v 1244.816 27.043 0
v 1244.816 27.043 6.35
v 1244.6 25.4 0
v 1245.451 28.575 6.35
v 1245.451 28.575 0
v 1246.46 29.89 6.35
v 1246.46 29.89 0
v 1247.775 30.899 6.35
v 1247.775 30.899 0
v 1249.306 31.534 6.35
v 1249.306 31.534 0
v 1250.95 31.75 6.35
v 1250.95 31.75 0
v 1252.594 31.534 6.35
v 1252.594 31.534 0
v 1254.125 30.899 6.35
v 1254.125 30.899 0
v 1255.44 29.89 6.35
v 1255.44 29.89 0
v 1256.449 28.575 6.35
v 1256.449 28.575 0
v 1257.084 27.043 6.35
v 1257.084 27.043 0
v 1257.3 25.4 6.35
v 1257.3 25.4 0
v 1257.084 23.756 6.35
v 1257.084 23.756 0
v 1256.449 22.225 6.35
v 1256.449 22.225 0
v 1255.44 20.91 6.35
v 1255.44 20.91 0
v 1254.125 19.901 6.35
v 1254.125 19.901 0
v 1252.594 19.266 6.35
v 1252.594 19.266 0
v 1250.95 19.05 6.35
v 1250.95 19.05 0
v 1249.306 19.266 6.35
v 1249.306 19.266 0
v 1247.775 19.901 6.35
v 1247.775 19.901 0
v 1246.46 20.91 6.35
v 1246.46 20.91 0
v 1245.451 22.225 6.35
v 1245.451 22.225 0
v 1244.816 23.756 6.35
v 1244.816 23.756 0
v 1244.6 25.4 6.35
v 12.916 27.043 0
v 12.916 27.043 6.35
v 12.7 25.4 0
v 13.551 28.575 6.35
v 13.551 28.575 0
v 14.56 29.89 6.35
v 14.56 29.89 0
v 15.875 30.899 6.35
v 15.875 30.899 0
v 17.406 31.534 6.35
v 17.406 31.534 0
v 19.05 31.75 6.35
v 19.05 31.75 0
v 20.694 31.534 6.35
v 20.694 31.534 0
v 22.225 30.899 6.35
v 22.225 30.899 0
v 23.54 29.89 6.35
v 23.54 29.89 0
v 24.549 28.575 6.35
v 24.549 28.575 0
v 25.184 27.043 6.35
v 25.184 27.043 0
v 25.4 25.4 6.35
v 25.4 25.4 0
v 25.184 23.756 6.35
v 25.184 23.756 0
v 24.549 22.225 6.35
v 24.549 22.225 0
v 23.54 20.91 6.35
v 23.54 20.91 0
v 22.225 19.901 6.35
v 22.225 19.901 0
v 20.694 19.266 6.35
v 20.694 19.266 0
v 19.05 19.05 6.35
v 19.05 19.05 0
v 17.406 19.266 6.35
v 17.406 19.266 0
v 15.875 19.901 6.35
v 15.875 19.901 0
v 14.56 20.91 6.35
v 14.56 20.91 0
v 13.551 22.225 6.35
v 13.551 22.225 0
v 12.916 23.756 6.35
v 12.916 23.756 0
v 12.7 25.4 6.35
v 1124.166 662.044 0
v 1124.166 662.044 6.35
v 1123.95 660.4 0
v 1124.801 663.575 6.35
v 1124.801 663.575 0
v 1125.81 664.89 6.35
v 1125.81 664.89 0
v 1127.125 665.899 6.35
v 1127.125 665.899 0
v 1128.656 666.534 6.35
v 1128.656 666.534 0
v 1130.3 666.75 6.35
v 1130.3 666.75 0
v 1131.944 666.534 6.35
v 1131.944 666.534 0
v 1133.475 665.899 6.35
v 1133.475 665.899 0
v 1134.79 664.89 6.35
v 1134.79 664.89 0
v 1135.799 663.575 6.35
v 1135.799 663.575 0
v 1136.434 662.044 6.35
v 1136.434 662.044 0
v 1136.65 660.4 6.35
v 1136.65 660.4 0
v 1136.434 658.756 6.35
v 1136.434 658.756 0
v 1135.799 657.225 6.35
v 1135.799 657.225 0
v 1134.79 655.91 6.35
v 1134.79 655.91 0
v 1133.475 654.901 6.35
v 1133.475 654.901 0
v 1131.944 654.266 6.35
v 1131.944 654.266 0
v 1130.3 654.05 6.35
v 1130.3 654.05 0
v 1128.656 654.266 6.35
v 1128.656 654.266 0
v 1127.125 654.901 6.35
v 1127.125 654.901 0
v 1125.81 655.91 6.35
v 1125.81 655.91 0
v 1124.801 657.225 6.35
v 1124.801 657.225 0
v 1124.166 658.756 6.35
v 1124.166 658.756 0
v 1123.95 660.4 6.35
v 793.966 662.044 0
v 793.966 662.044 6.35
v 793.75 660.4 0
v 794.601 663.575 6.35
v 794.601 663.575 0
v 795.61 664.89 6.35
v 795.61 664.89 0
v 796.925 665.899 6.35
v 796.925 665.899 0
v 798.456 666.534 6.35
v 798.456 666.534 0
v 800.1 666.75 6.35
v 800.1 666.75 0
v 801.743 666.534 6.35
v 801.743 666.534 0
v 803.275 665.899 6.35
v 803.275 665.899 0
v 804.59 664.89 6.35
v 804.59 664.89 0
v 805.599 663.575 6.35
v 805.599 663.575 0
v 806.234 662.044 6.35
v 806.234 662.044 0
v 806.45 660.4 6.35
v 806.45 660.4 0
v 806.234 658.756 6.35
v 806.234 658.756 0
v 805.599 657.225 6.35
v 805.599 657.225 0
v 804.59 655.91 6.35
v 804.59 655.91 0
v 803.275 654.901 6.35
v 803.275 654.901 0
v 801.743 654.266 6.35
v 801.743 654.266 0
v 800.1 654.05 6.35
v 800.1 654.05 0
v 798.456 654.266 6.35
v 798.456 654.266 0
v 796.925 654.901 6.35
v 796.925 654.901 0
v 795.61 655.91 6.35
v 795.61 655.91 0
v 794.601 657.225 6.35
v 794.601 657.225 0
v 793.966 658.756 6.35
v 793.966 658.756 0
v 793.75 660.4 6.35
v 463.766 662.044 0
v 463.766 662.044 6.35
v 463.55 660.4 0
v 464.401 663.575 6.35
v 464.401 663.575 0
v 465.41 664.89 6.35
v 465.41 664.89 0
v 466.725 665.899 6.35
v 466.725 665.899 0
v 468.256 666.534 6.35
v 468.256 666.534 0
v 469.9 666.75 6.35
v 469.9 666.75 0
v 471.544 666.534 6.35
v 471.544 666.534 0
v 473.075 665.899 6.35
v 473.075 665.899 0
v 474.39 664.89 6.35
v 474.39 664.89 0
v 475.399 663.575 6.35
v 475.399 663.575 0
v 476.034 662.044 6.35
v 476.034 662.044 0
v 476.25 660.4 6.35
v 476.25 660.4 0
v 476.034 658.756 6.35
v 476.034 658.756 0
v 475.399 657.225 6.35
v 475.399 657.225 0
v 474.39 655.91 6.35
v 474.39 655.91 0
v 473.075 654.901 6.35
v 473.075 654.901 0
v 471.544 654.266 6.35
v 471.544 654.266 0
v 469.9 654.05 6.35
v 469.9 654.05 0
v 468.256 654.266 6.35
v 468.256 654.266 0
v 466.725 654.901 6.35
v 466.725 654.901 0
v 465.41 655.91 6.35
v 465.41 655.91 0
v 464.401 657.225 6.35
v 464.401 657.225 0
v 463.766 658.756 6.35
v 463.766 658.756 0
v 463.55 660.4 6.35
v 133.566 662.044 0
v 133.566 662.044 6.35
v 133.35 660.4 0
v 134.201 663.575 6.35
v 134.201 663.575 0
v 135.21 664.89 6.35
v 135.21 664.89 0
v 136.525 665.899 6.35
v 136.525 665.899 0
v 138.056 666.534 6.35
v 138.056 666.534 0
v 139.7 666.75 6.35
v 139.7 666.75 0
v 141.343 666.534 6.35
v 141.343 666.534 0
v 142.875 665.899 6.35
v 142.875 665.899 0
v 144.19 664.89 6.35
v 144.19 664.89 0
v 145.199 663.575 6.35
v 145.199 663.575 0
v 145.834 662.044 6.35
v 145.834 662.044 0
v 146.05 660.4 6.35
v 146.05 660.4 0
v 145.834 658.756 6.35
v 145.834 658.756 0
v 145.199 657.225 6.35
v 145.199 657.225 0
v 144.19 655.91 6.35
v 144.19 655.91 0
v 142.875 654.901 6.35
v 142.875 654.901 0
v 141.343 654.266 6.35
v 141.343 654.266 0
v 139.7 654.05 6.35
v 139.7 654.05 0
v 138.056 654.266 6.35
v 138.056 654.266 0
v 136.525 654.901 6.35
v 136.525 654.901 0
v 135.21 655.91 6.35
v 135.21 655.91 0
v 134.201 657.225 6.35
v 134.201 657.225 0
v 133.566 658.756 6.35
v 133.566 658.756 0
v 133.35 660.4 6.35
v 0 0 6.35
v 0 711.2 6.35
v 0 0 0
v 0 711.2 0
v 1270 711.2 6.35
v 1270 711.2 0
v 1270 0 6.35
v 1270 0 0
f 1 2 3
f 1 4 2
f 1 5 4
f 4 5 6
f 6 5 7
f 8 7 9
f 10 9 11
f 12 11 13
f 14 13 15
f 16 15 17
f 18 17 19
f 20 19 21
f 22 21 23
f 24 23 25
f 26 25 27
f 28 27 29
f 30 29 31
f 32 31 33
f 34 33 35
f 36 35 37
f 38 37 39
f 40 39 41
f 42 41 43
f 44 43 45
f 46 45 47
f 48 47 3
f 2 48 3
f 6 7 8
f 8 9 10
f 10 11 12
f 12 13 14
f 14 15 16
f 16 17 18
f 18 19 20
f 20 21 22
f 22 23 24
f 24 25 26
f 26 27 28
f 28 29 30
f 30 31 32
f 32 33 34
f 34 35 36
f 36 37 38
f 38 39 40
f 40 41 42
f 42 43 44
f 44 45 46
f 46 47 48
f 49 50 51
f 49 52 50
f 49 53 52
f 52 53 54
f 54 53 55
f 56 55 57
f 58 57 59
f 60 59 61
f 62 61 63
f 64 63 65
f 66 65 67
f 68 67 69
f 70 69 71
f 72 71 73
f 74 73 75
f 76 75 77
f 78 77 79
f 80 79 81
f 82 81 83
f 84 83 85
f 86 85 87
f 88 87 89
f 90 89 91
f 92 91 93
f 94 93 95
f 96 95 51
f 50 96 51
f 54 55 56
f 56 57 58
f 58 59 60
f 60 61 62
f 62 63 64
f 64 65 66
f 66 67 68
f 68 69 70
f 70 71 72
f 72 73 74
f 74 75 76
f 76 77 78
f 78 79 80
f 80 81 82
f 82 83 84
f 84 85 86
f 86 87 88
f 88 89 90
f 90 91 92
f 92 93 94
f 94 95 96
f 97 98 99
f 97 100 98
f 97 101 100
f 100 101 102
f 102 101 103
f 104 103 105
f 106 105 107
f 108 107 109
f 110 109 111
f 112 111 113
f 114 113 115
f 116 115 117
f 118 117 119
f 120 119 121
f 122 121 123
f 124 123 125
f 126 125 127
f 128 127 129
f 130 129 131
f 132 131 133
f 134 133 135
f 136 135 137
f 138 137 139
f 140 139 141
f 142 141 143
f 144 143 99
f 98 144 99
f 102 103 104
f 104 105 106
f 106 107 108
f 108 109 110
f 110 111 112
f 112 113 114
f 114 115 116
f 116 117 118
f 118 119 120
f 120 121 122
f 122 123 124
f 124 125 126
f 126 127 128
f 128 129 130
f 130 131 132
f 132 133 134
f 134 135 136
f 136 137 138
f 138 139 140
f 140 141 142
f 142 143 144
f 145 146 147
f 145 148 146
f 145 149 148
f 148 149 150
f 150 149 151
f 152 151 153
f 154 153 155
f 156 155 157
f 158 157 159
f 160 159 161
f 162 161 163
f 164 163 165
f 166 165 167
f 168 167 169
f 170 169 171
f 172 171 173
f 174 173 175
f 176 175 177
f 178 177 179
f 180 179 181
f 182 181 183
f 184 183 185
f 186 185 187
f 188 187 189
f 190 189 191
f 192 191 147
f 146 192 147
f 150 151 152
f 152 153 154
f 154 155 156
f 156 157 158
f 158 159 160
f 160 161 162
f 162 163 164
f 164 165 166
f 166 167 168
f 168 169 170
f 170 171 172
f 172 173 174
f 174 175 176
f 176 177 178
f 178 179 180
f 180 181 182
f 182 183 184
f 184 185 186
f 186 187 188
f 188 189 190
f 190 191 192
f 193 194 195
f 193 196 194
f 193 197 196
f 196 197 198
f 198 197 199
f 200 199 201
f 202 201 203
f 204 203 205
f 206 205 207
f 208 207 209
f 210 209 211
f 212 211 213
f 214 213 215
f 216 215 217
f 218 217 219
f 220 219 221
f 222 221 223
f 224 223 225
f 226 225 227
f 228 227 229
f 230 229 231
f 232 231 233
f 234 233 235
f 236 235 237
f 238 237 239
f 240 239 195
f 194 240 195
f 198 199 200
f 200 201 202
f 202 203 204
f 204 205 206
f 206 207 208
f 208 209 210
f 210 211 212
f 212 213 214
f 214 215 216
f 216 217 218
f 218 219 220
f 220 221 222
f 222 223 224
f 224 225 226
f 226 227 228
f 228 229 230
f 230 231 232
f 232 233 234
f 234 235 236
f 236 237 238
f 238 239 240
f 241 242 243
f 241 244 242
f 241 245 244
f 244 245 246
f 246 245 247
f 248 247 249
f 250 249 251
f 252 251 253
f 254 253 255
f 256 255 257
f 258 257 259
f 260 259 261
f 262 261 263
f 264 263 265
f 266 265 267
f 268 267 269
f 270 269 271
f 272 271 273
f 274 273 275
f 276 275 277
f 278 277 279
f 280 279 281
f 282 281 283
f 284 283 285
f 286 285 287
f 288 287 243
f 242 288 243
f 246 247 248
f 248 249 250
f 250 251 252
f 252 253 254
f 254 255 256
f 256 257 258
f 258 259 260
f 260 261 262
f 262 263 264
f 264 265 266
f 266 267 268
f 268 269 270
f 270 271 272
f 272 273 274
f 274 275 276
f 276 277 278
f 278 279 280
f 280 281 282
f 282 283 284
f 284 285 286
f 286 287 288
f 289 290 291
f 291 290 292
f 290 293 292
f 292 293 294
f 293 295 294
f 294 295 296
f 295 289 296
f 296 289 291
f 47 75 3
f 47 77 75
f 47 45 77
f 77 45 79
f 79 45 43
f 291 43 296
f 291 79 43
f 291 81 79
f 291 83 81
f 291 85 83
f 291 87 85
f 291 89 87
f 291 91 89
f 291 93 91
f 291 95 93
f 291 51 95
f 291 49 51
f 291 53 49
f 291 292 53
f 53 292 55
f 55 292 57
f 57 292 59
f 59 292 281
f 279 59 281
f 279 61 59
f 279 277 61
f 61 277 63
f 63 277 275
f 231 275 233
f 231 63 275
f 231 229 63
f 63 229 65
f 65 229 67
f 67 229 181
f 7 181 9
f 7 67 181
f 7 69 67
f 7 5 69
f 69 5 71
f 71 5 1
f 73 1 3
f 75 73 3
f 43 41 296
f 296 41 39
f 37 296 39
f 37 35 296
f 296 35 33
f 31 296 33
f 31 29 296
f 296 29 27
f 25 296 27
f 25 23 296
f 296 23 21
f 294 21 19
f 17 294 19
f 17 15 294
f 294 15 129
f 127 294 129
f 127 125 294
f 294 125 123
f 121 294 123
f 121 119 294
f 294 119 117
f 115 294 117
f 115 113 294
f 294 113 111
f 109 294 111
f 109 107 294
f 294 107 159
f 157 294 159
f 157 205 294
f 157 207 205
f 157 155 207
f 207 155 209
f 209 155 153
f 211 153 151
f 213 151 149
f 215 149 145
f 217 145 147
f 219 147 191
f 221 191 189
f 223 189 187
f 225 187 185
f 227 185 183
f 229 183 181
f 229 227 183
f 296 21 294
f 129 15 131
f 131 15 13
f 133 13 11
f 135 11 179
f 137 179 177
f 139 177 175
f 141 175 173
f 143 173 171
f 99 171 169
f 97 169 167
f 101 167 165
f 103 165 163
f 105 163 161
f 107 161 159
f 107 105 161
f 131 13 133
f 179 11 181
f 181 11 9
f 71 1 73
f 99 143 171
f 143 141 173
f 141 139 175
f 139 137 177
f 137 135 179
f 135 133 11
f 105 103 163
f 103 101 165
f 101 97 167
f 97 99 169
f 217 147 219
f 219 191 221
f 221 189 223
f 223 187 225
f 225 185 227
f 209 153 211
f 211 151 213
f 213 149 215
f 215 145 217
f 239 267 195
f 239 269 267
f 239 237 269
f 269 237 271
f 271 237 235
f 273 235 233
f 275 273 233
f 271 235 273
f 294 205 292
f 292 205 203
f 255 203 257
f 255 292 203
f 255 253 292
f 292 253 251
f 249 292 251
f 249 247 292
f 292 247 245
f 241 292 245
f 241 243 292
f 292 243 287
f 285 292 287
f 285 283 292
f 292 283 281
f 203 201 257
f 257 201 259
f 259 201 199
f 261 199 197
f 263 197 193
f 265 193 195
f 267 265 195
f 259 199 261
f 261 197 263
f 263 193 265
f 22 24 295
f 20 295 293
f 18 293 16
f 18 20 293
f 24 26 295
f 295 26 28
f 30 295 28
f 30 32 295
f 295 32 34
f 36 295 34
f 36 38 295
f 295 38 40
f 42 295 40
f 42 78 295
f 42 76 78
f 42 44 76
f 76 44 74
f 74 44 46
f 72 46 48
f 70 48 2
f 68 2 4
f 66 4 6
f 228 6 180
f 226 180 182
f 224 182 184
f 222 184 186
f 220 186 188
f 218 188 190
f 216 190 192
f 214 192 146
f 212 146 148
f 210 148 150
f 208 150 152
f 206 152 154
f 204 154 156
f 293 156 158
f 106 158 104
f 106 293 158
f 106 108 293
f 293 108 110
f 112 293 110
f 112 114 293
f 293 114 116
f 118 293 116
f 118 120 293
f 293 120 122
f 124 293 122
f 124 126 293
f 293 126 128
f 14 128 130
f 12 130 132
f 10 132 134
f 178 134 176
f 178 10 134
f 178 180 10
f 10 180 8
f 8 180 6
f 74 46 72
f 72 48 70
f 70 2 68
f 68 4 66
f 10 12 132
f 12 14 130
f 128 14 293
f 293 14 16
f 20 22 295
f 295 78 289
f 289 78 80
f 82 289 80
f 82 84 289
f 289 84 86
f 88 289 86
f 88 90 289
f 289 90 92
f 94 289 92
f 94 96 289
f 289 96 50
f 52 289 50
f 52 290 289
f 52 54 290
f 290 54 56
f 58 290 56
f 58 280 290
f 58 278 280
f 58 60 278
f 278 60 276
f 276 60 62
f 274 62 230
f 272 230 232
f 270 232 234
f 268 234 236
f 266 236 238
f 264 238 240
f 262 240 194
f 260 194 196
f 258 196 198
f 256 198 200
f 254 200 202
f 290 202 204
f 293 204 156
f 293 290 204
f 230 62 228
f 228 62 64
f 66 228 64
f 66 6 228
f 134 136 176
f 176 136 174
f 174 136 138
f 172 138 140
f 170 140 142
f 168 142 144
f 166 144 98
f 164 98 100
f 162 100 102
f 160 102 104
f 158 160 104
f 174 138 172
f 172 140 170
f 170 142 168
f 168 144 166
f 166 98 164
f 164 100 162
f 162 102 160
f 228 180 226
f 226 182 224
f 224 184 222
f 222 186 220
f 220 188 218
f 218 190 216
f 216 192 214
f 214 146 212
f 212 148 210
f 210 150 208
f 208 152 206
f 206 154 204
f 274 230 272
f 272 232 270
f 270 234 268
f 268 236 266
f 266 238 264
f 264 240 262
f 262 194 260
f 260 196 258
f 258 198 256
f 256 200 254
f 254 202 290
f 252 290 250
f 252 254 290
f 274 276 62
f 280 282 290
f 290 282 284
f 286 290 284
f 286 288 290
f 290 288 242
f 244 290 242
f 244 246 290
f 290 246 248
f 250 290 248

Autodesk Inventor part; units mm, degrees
ref_plane "YZ Plane" through (0, 0, 0) normal (1, 0, 0) x (0, 1, 0)
ref_plane "XZ Plane" through (0, 0, 0) normal (0, 1, 0) x (-1, 0, 0)
ref_plane "XY Plane" through (0, 0, 0) normal (0, 0, 1) x (1, 0, 0)
sketch "Sketch1" plane through (0, 0, 0) normal (0, 0, 1) x (1, 0, 0)
  line L0 (0, 0) -> (1270, 0)
  line L1 (1270, 0) -> (1270, 711.2)
  line L2 (1270, 711.2) -> (0, 711.2)
  line L3 (0, 711.2) -> (0, 0)
  dimension "d0" = 1270
  dimension "d1" = 711.2
extrude "Extrusion1" add sketch "Sketch1" along normal blind 6.35
hole "Hole1" at (139.7, 660.4, 6.35) direction (0, 0, -1) diameter 12.7 end through all
pattern_linear "Rectangular Pattern1" count 4 spacing 330.2 along (1, 0, 0) of "Hole1"
hole "Hole2" at (19.05, 25.4, 6.35) direction (0, 0, -1) diameter 12.7 end through all
pattern_linear "Rectangular Pattern2" count 2 spacing 1231.9 along (1, 0, 0) of "Hole2"
properties part number "GE-12051"
